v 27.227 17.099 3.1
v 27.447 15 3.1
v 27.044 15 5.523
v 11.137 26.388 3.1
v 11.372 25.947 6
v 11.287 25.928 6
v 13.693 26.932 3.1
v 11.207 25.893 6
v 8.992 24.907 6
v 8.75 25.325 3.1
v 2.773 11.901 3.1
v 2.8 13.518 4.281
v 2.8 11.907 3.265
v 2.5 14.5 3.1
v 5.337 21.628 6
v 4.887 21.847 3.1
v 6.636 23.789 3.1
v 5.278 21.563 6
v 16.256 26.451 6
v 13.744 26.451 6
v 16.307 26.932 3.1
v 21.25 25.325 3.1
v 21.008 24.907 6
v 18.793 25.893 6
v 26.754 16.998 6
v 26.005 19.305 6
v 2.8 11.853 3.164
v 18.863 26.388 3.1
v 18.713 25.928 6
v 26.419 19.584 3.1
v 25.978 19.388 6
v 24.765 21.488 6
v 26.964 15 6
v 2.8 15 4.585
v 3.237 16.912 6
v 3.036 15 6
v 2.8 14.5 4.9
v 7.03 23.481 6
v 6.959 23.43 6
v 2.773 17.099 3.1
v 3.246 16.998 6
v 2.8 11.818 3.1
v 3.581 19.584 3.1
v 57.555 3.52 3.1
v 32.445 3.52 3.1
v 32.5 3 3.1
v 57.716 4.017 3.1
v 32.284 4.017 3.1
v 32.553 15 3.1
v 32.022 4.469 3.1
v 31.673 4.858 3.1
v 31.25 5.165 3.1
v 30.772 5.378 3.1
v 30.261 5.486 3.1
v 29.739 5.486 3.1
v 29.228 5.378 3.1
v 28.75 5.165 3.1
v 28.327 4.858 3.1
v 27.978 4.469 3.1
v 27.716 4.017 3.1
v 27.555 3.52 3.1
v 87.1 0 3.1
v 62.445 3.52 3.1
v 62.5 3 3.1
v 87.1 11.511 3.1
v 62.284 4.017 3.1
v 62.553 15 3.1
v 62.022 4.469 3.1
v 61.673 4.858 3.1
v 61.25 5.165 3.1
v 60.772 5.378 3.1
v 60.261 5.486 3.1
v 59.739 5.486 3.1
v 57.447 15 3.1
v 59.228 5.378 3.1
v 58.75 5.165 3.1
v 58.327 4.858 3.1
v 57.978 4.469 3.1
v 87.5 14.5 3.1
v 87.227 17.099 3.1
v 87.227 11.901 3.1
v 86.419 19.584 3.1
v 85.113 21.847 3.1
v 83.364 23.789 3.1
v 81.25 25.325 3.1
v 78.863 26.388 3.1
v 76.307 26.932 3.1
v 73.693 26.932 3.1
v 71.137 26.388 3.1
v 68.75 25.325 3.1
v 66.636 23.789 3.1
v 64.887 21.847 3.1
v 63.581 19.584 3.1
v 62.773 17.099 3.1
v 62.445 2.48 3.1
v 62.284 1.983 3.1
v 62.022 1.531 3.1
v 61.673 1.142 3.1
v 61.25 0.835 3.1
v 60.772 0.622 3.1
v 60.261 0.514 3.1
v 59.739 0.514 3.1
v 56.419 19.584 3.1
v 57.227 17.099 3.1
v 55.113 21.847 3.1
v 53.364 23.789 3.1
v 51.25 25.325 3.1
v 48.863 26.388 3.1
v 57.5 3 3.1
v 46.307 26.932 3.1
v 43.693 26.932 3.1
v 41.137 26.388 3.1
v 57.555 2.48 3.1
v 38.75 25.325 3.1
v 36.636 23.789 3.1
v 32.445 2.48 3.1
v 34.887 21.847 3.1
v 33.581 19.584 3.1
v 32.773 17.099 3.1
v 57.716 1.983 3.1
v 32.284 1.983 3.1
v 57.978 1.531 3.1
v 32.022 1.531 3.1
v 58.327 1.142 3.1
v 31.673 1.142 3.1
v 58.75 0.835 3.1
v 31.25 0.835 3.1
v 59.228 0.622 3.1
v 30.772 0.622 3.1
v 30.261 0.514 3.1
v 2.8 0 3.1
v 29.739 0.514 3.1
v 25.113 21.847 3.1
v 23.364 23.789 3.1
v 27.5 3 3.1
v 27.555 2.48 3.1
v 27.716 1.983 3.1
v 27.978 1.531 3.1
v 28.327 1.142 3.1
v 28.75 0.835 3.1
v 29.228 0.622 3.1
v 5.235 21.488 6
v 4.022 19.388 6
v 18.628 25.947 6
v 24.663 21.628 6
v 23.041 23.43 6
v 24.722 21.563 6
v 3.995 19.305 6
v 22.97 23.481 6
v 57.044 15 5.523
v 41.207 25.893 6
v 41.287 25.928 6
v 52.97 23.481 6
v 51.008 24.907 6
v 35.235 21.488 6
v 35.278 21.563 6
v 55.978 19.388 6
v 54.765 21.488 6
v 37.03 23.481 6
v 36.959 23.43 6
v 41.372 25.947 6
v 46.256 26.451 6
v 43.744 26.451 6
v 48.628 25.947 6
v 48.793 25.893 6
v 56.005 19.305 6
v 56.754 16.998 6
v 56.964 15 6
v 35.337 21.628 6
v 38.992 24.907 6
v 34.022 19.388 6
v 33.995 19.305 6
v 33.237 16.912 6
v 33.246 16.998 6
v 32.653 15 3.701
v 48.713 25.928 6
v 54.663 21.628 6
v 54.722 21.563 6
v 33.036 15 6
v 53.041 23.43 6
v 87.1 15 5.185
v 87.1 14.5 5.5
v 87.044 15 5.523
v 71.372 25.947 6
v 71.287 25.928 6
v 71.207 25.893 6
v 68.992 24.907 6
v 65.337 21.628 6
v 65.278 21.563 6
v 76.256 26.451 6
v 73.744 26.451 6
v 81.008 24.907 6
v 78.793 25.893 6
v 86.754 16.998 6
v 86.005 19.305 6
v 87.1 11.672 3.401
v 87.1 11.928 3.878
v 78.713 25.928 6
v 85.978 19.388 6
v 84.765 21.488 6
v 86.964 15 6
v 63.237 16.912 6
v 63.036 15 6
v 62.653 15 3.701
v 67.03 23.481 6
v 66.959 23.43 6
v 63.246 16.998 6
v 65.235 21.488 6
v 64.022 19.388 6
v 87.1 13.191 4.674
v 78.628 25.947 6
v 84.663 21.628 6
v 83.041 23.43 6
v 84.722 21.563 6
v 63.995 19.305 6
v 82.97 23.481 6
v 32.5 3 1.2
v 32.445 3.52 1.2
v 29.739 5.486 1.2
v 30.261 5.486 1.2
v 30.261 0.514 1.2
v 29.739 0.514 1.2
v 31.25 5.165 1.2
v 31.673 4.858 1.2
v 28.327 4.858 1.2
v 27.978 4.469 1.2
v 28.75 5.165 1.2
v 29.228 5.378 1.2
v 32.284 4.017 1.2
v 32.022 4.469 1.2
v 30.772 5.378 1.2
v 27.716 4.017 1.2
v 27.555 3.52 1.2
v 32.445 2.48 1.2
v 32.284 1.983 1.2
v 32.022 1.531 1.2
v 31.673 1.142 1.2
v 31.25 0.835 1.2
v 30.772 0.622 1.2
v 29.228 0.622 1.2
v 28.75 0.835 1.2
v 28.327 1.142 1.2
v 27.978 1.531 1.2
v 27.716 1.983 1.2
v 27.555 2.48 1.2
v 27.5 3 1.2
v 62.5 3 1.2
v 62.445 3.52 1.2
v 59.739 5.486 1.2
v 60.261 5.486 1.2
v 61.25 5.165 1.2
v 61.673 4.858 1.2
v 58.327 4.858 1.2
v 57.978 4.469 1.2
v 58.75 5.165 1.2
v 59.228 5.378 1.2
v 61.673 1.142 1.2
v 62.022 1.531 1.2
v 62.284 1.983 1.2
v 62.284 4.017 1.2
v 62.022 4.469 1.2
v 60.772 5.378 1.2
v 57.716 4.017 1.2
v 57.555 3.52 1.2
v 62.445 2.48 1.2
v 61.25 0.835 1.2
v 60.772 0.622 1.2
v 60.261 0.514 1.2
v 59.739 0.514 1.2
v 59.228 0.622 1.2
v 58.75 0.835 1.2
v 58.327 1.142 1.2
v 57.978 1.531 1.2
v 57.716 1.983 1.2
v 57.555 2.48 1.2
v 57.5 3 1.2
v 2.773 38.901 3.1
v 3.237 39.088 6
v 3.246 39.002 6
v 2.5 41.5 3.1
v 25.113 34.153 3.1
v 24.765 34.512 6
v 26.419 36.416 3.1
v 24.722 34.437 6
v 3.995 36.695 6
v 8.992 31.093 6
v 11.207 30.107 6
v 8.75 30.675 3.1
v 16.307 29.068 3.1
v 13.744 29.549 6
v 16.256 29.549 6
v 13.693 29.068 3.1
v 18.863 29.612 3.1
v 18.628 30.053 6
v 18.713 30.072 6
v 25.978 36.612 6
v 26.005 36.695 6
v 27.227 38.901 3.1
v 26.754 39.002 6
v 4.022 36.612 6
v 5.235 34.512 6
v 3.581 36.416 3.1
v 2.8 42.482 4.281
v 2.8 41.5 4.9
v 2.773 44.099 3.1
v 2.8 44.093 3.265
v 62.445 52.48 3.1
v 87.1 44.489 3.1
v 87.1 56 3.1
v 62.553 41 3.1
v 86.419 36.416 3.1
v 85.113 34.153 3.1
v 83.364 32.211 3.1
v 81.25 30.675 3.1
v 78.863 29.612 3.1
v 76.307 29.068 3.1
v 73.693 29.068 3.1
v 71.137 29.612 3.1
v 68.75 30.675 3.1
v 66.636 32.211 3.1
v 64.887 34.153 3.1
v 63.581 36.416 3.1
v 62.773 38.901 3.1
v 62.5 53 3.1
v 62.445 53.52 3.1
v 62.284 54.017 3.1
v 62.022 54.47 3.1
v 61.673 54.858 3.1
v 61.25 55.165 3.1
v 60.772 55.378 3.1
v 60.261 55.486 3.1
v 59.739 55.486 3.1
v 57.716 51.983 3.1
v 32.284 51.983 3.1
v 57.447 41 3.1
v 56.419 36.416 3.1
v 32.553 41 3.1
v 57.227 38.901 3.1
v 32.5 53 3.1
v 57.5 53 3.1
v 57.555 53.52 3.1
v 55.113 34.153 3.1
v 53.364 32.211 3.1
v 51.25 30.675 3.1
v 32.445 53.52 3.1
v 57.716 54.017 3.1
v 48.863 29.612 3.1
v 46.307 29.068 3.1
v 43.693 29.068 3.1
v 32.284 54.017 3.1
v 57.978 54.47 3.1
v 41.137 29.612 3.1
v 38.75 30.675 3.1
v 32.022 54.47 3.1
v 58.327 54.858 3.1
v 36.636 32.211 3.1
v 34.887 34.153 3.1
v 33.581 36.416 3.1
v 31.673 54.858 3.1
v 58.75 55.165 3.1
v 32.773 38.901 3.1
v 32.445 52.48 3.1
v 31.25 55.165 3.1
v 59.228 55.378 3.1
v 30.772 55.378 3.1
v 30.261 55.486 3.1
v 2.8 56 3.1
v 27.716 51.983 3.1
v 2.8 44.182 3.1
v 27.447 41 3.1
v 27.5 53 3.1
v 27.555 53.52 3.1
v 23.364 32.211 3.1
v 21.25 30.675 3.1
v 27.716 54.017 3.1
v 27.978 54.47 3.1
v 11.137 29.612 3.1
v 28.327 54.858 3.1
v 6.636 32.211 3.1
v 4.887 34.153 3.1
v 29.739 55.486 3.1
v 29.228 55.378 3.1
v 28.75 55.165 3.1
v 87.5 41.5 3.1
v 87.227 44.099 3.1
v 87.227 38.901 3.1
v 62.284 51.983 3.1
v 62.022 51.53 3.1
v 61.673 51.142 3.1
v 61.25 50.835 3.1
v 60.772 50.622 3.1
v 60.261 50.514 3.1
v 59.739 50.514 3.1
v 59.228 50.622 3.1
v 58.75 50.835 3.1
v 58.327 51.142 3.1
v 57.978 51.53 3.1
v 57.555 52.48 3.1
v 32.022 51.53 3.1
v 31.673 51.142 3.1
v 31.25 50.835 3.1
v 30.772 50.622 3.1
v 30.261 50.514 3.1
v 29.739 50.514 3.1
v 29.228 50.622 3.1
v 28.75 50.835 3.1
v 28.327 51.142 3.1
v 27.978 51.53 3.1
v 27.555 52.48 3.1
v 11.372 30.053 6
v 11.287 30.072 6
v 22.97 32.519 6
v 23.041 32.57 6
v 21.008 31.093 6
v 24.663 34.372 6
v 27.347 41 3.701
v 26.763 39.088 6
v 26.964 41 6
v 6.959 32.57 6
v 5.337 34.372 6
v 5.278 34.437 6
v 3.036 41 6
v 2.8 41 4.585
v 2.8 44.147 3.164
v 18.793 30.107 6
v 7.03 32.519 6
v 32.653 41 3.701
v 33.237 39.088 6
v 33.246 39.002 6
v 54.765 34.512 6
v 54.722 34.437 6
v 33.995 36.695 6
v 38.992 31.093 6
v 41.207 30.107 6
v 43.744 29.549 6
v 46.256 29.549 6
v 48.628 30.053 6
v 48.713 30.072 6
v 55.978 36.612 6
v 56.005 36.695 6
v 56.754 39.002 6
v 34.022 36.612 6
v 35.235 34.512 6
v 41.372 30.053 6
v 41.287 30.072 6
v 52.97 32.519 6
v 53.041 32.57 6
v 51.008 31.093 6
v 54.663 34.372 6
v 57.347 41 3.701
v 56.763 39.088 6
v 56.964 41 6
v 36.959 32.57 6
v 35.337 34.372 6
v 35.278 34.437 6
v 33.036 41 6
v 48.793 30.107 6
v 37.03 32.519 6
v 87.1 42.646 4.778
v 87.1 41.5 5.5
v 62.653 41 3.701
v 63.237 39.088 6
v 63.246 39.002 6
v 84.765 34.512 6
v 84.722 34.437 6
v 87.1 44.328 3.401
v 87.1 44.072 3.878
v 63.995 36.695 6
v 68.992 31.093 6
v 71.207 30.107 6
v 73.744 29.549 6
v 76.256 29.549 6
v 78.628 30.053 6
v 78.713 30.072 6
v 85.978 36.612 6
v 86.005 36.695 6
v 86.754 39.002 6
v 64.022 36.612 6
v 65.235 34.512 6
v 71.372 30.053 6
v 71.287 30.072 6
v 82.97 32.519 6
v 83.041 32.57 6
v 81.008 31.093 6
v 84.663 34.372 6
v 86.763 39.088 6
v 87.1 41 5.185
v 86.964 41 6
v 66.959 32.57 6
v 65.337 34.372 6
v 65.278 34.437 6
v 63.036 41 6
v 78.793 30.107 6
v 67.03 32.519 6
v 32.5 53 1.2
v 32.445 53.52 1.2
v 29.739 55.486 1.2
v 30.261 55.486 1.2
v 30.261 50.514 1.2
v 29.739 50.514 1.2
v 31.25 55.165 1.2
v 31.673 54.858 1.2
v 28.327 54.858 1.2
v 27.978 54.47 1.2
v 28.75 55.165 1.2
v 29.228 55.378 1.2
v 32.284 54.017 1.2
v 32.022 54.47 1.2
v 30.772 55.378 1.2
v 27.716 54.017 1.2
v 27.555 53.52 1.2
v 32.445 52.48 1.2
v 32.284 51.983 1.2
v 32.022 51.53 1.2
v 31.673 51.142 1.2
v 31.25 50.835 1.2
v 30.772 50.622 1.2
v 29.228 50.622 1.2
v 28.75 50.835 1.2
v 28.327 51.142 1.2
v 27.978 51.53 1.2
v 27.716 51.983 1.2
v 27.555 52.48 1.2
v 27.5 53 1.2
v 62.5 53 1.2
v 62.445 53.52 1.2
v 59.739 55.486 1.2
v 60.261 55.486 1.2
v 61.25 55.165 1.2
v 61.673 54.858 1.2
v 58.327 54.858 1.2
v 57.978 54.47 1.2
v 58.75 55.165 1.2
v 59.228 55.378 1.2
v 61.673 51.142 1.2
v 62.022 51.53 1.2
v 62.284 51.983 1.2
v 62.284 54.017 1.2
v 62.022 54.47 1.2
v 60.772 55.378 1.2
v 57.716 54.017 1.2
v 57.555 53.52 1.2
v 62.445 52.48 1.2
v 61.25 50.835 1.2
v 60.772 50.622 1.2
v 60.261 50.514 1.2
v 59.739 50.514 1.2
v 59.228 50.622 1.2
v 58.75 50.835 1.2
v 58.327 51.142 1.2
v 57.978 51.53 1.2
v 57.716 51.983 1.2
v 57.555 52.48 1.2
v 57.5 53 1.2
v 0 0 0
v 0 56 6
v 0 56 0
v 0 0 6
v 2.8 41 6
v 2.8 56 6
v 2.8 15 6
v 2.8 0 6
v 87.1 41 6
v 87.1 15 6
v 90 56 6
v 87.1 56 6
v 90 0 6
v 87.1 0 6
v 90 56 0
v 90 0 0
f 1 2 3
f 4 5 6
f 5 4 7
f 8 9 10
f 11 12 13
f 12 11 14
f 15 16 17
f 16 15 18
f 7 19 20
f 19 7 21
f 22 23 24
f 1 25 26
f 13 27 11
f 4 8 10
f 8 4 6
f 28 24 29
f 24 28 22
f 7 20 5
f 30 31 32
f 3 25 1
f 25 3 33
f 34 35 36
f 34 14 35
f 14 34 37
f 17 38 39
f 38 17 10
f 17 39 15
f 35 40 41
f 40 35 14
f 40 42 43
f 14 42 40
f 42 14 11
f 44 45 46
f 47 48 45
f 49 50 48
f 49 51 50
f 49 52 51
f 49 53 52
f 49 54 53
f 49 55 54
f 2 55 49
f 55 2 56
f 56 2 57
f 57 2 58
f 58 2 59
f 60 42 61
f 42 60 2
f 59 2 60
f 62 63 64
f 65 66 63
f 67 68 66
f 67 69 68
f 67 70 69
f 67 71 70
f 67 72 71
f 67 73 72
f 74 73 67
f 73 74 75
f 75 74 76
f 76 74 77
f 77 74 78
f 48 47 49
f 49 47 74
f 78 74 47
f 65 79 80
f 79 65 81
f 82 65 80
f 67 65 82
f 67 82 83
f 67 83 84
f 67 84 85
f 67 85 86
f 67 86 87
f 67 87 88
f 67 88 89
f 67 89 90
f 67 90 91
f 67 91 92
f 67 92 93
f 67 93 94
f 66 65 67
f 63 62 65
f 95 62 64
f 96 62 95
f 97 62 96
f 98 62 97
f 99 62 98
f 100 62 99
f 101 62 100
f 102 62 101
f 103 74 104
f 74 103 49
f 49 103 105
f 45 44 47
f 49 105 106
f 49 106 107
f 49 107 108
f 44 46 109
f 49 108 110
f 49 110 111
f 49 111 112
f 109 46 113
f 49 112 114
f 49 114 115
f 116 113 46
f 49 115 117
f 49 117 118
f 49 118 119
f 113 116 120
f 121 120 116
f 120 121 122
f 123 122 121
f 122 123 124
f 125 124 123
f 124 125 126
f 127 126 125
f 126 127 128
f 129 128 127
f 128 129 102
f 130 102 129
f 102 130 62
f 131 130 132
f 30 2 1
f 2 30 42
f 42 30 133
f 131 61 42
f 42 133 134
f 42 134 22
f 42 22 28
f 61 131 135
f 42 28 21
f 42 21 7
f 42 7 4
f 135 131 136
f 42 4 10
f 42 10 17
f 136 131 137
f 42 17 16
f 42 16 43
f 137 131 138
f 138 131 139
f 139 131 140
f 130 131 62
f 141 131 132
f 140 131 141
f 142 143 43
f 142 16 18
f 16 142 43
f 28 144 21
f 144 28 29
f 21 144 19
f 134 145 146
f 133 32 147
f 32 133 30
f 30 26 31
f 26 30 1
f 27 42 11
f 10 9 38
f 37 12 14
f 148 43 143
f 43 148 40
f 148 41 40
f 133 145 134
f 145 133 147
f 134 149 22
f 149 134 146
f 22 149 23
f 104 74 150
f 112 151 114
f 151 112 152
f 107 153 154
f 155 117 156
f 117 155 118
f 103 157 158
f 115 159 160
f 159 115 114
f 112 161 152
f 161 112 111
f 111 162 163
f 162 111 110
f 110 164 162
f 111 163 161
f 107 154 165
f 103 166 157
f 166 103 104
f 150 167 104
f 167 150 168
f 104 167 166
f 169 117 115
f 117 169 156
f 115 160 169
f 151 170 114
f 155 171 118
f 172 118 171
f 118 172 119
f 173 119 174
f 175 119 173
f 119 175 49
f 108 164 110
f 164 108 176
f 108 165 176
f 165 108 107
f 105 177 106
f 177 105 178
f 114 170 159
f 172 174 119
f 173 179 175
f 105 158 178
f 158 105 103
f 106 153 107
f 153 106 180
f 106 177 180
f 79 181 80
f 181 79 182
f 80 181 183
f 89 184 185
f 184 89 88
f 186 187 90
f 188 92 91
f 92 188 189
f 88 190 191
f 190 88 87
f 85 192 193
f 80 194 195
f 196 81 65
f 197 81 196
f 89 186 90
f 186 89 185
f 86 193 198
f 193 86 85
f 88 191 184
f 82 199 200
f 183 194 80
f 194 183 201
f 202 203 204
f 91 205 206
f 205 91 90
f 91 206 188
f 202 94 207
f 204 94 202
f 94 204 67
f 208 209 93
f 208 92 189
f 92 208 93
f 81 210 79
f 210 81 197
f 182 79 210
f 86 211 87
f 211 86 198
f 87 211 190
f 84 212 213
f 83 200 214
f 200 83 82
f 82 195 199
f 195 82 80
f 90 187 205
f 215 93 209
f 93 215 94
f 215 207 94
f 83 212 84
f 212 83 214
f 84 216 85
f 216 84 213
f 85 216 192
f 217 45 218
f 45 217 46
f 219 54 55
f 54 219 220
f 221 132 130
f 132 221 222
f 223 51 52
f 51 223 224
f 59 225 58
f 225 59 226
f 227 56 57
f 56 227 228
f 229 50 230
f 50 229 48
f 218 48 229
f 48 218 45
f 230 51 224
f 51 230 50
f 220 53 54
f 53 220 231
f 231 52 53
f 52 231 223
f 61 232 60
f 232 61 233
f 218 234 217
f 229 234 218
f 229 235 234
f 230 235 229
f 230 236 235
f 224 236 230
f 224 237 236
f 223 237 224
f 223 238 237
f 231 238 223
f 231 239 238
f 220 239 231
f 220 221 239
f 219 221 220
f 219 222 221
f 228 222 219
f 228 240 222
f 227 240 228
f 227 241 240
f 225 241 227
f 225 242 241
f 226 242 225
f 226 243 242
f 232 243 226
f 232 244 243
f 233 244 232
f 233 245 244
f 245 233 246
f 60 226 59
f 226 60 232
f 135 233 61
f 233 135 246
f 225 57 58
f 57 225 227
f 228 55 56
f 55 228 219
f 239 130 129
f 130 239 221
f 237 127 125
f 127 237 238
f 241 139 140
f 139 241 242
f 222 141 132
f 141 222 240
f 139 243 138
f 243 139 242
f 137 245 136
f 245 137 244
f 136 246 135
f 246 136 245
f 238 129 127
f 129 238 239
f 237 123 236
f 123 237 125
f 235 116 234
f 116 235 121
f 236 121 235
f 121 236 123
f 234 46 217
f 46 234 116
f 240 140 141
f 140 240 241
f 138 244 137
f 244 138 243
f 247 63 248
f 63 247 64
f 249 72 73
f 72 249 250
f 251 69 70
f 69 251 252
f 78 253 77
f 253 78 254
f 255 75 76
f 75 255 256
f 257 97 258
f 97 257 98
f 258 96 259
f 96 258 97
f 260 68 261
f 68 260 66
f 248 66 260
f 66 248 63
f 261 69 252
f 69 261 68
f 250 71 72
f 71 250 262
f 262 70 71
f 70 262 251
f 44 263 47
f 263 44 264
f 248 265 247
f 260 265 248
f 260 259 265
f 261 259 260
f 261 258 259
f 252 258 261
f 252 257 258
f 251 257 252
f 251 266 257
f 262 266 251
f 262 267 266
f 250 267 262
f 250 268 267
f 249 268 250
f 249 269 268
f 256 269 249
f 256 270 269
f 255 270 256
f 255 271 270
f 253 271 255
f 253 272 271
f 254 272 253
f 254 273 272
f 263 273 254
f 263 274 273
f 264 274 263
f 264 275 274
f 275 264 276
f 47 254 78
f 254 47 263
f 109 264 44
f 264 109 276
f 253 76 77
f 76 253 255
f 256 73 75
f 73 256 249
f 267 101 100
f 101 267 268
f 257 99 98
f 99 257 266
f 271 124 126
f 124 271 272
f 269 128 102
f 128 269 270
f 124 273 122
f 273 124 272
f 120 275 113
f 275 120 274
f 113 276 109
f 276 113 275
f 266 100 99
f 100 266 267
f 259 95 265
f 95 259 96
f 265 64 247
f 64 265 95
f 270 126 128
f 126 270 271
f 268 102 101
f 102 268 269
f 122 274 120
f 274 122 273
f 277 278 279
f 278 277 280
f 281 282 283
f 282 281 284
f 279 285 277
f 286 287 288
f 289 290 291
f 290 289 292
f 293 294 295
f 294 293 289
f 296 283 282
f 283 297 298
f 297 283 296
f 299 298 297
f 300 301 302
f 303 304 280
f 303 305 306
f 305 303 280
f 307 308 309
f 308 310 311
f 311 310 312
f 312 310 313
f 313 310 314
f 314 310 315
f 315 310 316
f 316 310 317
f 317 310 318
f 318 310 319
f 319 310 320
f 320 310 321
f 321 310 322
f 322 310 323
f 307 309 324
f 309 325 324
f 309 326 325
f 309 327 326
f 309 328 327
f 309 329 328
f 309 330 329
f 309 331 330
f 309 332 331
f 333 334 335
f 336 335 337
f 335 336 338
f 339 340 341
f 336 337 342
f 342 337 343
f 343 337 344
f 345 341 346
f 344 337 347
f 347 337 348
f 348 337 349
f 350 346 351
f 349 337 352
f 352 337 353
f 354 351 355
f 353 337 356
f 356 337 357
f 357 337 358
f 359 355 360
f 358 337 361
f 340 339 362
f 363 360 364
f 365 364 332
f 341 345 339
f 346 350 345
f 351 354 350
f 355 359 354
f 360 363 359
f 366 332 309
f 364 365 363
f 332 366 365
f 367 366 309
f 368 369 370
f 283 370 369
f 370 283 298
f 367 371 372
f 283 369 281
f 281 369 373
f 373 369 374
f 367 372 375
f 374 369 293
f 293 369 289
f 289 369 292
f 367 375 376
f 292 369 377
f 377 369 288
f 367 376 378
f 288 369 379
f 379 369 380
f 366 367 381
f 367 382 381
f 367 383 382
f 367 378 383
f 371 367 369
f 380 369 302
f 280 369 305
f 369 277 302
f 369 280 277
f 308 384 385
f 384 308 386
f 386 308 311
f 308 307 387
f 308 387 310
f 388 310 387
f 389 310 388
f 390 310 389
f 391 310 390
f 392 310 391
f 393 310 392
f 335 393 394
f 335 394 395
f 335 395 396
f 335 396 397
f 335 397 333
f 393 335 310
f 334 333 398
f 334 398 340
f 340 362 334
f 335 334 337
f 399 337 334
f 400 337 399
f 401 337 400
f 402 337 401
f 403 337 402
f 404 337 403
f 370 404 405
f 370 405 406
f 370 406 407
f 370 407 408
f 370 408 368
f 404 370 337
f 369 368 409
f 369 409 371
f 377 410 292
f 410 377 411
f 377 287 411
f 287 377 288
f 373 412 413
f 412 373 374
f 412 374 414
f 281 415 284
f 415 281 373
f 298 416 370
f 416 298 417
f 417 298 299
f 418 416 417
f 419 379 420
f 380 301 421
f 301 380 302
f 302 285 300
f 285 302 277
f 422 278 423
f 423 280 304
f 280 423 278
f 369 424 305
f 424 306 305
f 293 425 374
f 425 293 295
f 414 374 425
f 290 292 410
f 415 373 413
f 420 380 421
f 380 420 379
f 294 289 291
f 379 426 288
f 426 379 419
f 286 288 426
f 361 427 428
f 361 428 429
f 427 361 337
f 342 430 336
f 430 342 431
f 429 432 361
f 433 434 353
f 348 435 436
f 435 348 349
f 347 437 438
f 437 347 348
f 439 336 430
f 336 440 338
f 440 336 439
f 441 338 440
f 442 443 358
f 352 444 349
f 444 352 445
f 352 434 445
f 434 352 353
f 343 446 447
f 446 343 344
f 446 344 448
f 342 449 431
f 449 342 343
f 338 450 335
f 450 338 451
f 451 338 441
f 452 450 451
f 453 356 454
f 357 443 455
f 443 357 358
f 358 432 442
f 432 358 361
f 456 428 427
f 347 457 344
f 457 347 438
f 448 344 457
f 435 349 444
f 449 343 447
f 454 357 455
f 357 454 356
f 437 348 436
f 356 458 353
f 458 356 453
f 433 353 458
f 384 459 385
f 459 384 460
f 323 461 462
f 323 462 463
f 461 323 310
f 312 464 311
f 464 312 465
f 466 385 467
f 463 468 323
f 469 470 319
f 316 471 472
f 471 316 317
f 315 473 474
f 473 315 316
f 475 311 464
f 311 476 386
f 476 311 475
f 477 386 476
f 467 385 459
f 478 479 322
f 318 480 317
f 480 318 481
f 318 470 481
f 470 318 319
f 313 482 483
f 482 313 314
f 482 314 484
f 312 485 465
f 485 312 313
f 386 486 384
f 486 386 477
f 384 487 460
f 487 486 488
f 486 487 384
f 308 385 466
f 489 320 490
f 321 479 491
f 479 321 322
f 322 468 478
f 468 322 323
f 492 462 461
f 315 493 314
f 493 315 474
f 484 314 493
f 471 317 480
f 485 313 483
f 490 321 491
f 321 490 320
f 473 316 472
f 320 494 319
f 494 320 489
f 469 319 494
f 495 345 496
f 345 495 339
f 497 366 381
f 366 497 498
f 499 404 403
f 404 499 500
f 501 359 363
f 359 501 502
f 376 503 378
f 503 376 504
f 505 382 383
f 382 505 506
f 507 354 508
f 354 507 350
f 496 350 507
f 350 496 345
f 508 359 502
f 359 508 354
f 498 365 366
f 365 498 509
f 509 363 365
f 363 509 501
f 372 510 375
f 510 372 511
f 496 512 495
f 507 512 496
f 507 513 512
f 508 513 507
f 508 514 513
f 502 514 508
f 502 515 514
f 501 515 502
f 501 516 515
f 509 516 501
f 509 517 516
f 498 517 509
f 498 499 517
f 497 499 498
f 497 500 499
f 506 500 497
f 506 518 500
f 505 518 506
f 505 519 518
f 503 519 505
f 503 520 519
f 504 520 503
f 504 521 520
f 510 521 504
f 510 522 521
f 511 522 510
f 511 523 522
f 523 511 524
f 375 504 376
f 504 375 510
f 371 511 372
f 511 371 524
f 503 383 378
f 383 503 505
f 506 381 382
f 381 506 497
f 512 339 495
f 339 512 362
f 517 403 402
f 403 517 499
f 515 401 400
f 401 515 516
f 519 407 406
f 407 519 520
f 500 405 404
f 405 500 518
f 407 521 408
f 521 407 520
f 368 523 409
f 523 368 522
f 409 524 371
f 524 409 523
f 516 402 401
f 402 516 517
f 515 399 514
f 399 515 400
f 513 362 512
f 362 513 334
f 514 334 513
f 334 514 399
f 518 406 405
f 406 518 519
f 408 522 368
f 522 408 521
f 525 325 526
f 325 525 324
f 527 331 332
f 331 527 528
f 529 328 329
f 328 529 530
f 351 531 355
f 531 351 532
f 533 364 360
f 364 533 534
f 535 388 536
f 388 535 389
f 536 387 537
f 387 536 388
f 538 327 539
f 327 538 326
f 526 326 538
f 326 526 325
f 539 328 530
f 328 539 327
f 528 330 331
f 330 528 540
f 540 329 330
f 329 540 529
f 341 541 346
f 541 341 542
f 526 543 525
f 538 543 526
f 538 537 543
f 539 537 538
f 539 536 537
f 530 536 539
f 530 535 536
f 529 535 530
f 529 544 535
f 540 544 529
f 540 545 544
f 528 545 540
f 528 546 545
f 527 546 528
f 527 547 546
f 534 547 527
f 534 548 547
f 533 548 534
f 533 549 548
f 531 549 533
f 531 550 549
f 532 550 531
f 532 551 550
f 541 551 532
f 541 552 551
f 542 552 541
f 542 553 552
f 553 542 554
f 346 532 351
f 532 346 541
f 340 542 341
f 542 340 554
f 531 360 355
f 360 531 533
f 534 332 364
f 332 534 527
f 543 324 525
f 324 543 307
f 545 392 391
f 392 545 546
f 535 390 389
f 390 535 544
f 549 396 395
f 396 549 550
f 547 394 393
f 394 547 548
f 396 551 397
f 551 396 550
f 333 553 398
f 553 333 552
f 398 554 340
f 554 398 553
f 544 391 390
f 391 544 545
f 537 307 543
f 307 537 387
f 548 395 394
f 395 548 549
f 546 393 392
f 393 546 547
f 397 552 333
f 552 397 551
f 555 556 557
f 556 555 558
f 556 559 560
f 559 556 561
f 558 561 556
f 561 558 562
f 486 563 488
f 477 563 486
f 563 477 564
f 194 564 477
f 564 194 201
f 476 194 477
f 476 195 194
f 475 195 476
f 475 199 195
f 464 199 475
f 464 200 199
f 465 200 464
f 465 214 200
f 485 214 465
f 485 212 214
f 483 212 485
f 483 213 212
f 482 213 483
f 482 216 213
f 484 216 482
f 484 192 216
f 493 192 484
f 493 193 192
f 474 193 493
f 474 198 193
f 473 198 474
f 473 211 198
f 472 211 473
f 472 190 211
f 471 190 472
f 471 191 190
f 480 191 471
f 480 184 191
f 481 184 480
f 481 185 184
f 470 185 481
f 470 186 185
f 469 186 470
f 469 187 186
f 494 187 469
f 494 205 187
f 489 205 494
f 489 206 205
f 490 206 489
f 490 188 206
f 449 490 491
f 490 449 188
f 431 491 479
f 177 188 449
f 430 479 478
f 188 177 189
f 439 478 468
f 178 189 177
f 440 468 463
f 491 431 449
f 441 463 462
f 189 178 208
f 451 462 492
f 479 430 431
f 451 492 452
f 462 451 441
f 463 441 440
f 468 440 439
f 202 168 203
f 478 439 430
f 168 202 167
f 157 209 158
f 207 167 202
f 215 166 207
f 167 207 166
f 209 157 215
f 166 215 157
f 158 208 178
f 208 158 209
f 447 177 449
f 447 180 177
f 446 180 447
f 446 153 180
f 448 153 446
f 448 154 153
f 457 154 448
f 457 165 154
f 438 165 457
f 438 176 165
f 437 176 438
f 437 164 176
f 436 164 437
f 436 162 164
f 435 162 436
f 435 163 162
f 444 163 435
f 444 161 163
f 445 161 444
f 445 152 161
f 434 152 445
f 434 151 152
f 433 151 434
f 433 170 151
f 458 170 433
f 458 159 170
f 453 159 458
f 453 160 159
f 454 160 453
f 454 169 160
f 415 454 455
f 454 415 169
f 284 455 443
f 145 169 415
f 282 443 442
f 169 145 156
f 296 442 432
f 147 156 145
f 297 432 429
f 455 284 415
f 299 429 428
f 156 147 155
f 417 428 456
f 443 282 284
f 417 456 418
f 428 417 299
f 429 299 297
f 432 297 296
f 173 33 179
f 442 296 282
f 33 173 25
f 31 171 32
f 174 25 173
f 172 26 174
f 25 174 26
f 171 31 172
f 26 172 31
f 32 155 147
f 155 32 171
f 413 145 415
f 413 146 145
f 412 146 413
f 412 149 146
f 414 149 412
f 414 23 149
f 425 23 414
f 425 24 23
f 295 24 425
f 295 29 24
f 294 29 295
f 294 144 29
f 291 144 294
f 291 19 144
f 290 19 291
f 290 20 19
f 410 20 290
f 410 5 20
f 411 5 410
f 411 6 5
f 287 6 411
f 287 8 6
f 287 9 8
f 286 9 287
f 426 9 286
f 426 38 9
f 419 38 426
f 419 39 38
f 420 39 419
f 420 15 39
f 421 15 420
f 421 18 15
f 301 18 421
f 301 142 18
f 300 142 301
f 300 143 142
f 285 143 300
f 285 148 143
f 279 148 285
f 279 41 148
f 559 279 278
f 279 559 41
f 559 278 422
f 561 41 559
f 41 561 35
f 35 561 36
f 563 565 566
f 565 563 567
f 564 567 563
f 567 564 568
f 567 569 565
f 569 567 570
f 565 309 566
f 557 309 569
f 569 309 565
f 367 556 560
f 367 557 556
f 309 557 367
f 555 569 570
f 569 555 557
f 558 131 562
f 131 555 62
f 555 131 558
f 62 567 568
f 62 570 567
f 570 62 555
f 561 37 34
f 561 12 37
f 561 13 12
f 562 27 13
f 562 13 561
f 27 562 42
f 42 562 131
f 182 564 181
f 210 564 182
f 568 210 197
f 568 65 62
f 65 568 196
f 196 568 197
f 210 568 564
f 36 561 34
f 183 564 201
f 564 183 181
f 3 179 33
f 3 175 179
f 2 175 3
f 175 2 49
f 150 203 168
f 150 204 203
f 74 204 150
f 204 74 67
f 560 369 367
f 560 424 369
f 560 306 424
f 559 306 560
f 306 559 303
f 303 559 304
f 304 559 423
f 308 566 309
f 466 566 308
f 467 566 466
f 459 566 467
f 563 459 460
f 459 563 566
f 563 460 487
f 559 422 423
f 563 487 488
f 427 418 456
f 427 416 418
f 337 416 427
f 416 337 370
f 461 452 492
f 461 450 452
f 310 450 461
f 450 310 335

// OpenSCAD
$fs = 0.5; // This takes a long long time to compute, but much nicer
base_length=90;
base_depth=56;

thickness=3;

base_bottom=25/2;
base_top=24/2;

magnet_radius=5/2;
magnet_thickness=2;

difference(){
    // base plate
    cube([base_length, base_depth, 2*thickness]);

    // front row
    translate([2.8, -1, thickness+0.1])
        cube([base_length -5.7, base_depth/4+2, thickness]);    
    // minis
    for(x=[0:2])
        translate([2.5+base_bottom+5*x+x*2*base_bottom, base_bottom+2, thickness+0.1])
            cylinder(r1=base_bottom, r2=base_top, h=thickness);    

    // magnets
    for(x=[1:2])
        translate([5*x+x*2*base_bottom,3,thickness - magnet_thickness+0.2])
            cylinder(r=magnet_radius, h=magnet_thickness);
    

    // back row
    translate([2.8, base_depth*3/4-1, thickness +0.1])
        cube([base_length -5.7, base_depth/4+2, thickness]);
    // minis
    for(x=[0:2])
        translate([2.5+base_bottom+5*x+x*2*base_bottom, base_depth - base_bottom-2, thickness+0.1])
            cylinder(r1=base_bottom, r2=base_top, h=thickness);
    // magnets
    for(x=[1:2])
        translate([+5*x+x*2*base_bottom,base_depth - 3,thickness - magnet_thickness+0.2])
            cylinder(r=magnet_radius, h=magnet_thickness);
}
